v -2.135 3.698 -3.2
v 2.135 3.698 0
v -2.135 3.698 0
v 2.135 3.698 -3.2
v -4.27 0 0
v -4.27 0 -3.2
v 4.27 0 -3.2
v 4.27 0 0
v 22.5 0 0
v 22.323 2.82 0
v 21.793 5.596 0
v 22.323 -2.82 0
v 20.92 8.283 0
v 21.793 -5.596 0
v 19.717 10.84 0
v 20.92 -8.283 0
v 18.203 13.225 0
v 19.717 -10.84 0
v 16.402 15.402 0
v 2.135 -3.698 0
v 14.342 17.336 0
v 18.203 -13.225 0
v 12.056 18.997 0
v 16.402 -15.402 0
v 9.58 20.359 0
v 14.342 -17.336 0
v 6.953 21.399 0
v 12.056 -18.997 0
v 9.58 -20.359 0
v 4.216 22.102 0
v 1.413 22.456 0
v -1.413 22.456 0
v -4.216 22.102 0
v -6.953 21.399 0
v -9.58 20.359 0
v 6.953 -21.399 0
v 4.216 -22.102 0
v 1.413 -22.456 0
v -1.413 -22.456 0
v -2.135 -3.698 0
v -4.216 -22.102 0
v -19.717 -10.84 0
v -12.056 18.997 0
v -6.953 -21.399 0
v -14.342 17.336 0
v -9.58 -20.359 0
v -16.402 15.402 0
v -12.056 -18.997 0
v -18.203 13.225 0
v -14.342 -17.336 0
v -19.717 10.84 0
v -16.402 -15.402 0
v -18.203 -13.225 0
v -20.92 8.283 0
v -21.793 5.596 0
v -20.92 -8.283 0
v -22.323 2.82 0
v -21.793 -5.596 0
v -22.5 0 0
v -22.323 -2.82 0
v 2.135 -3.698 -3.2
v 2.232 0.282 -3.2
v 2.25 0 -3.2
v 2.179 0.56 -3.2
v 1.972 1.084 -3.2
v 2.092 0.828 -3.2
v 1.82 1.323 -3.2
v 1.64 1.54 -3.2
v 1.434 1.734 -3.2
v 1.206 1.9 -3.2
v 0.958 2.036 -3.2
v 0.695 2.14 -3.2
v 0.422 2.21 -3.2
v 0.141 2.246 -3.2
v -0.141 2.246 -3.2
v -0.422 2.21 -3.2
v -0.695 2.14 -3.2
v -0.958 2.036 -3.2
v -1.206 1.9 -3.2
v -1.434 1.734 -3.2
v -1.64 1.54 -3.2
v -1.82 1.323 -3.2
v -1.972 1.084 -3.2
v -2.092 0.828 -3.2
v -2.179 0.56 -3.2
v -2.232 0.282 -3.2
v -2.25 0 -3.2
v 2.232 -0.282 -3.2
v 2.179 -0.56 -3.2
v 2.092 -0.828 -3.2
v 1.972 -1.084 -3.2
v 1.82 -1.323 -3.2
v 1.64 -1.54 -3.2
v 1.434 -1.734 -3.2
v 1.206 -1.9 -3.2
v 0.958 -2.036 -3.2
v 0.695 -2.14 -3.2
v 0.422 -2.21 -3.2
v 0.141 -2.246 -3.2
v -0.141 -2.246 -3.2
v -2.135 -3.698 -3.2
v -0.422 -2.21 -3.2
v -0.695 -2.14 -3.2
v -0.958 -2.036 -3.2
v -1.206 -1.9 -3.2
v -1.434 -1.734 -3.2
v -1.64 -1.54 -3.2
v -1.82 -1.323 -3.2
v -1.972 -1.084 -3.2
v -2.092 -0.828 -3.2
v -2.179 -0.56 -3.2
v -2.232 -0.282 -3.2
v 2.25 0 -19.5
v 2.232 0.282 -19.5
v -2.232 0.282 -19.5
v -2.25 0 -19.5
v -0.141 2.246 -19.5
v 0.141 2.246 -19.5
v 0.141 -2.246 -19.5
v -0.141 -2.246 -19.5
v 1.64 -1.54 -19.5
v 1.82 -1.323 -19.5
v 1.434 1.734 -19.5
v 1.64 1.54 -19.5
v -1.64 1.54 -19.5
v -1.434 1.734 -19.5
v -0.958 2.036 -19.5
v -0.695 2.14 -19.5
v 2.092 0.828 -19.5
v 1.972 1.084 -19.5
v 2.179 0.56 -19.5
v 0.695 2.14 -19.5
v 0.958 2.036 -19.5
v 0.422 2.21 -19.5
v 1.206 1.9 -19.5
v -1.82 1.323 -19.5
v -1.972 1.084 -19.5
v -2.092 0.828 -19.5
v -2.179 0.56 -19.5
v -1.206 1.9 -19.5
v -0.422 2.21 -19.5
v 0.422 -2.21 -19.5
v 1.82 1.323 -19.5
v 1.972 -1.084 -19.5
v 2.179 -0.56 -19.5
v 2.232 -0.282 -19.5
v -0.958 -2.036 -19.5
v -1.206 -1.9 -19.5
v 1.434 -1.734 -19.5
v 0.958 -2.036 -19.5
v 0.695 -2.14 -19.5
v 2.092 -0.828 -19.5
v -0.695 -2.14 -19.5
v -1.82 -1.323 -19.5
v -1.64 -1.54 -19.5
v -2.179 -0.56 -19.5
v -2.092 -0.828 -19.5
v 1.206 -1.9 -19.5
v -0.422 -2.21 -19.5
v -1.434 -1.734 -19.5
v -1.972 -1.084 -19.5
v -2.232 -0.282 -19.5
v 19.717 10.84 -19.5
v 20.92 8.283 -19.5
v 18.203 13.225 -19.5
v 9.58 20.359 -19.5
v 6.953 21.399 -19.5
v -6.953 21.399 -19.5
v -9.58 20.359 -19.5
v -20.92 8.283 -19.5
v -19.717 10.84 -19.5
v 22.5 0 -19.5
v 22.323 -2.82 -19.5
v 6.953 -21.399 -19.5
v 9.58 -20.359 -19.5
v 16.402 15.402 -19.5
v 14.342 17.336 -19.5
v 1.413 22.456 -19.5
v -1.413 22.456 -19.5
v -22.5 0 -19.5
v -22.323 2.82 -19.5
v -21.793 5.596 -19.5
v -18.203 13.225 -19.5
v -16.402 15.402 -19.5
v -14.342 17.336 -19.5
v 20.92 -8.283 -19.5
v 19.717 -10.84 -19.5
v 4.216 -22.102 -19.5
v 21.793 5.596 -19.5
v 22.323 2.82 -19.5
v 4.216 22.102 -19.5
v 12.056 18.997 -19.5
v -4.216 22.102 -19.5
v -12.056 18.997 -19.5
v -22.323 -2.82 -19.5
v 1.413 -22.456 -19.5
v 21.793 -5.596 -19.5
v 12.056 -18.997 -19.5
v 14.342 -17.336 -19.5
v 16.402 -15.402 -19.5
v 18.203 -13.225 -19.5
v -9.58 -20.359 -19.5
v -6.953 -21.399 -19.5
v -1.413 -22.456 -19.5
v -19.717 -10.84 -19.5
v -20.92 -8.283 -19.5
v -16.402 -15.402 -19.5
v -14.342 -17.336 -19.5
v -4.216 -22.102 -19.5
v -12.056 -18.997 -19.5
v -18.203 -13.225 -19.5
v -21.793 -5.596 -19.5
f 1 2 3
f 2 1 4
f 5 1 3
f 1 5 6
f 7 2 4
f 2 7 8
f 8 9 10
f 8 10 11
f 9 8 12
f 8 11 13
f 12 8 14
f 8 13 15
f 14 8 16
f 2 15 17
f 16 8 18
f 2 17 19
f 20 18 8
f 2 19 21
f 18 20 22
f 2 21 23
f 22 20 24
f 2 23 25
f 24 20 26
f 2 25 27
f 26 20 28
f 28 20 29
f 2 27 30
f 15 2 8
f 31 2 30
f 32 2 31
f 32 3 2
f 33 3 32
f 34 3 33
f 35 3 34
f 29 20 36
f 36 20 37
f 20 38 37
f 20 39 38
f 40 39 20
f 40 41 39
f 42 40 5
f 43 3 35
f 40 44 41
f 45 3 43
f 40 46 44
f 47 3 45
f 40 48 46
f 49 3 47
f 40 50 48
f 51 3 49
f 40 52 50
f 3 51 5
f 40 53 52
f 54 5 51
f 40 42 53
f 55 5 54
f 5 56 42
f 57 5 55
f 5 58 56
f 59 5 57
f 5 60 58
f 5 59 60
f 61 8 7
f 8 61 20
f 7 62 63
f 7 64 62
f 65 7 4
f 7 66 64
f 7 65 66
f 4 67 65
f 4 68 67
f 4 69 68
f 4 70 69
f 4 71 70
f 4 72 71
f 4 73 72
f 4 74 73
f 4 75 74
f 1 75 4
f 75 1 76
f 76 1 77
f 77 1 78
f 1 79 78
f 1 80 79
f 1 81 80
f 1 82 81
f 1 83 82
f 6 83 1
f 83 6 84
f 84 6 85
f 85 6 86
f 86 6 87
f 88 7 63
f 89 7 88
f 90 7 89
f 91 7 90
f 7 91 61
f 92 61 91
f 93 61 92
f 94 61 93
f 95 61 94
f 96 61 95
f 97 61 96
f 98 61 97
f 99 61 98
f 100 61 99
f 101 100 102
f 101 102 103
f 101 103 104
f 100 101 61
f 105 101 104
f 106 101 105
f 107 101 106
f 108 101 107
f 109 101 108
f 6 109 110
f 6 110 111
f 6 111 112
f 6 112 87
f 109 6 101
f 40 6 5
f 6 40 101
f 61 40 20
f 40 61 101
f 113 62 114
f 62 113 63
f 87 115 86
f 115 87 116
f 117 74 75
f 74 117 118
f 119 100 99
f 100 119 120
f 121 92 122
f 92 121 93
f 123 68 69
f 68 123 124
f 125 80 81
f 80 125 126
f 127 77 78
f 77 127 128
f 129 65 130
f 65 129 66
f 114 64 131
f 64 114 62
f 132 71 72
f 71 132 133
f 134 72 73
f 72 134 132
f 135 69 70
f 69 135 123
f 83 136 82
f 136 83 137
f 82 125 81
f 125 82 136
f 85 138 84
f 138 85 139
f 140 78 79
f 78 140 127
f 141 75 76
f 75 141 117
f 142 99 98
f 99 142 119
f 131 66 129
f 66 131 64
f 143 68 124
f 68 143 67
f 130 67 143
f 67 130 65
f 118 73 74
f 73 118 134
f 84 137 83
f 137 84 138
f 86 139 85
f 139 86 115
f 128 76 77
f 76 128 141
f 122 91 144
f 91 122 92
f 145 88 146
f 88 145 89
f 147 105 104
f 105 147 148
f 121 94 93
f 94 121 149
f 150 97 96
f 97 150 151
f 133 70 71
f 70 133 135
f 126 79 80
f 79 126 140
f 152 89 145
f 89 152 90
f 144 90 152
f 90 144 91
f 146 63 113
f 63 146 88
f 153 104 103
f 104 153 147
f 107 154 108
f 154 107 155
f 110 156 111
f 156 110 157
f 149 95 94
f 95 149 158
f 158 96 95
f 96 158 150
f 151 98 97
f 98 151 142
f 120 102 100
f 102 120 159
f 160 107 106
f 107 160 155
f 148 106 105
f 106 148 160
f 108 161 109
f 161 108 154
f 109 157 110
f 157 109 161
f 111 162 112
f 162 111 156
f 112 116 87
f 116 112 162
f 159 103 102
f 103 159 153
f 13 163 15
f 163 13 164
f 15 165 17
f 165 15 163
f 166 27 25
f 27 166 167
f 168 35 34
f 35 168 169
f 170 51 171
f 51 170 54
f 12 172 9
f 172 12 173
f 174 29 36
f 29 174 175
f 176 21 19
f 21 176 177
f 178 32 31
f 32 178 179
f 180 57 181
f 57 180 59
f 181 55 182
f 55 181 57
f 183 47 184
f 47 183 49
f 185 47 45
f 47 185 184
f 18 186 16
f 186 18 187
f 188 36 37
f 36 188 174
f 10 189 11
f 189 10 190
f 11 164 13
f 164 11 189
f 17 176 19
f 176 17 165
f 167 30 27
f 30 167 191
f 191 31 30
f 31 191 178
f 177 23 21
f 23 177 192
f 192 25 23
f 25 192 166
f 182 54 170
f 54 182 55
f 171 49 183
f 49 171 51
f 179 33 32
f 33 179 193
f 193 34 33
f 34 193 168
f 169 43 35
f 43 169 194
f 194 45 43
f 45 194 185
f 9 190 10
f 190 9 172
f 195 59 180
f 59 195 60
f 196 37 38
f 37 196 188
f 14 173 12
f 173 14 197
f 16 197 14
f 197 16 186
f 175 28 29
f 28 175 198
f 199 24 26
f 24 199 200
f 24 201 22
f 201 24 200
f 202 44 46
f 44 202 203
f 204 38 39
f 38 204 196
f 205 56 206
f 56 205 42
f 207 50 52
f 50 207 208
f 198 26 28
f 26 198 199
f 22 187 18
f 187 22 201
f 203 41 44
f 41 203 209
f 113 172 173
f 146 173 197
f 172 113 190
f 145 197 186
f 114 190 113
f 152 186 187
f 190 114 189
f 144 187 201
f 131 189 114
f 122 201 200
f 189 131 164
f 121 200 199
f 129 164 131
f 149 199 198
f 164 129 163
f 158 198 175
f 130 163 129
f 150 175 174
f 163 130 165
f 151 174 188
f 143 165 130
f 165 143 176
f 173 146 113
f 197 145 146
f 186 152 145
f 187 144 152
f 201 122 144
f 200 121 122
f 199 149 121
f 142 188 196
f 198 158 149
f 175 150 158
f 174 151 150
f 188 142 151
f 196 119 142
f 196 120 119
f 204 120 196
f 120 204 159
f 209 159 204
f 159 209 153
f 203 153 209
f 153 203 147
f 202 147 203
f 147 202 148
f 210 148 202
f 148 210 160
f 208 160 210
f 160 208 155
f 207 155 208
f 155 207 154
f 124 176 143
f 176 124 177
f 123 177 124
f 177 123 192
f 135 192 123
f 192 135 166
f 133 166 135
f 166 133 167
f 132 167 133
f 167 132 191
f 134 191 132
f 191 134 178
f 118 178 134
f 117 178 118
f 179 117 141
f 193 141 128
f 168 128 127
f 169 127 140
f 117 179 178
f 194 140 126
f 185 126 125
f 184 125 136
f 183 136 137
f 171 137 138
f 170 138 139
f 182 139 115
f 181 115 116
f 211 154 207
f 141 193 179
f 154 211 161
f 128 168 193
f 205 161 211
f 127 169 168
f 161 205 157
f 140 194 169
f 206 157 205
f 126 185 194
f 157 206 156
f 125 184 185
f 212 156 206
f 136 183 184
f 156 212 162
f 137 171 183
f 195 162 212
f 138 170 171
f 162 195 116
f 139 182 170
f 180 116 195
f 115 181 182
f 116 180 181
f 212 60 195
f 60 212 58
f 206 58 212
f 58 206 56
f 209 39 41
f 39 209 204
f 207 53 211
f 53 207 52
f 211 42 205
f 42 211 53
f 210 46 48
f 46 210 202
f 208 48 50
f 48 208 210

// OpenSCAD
$fn = 50;


difference() {
	union() {
		translate(v = [0, 0, -19.5000000000]) {
			cylinder(h = 19.5000000000, r = 22.5000000000);
		}
	}
	union() {
		translate(v = [0, 0, 0]) {
			rotate(a = [0, 0, 0]) {
				difference() {
					union() {
						translate(v = [0, 0, -3.2000000000]) {
							linear_extrude(height = 3.2000000000) {
								polygon(points = [[4.2698000000, 0.0000000000], [2.1349000000, 3.6977552691], [-2.1349000000, 3.6977552691], [-4.2698000000, 0.0000000000], [-2.1349000000, -3.6977552691], [2.1349000000, -3.6977552691]]);
							}
						}
					}
					union();
				}
			}
		}
		#translate(v = [0, 0, -100.0000000000]) {
			cylinder(h = 200, r = 2.2500000000);
		}
	}
}
